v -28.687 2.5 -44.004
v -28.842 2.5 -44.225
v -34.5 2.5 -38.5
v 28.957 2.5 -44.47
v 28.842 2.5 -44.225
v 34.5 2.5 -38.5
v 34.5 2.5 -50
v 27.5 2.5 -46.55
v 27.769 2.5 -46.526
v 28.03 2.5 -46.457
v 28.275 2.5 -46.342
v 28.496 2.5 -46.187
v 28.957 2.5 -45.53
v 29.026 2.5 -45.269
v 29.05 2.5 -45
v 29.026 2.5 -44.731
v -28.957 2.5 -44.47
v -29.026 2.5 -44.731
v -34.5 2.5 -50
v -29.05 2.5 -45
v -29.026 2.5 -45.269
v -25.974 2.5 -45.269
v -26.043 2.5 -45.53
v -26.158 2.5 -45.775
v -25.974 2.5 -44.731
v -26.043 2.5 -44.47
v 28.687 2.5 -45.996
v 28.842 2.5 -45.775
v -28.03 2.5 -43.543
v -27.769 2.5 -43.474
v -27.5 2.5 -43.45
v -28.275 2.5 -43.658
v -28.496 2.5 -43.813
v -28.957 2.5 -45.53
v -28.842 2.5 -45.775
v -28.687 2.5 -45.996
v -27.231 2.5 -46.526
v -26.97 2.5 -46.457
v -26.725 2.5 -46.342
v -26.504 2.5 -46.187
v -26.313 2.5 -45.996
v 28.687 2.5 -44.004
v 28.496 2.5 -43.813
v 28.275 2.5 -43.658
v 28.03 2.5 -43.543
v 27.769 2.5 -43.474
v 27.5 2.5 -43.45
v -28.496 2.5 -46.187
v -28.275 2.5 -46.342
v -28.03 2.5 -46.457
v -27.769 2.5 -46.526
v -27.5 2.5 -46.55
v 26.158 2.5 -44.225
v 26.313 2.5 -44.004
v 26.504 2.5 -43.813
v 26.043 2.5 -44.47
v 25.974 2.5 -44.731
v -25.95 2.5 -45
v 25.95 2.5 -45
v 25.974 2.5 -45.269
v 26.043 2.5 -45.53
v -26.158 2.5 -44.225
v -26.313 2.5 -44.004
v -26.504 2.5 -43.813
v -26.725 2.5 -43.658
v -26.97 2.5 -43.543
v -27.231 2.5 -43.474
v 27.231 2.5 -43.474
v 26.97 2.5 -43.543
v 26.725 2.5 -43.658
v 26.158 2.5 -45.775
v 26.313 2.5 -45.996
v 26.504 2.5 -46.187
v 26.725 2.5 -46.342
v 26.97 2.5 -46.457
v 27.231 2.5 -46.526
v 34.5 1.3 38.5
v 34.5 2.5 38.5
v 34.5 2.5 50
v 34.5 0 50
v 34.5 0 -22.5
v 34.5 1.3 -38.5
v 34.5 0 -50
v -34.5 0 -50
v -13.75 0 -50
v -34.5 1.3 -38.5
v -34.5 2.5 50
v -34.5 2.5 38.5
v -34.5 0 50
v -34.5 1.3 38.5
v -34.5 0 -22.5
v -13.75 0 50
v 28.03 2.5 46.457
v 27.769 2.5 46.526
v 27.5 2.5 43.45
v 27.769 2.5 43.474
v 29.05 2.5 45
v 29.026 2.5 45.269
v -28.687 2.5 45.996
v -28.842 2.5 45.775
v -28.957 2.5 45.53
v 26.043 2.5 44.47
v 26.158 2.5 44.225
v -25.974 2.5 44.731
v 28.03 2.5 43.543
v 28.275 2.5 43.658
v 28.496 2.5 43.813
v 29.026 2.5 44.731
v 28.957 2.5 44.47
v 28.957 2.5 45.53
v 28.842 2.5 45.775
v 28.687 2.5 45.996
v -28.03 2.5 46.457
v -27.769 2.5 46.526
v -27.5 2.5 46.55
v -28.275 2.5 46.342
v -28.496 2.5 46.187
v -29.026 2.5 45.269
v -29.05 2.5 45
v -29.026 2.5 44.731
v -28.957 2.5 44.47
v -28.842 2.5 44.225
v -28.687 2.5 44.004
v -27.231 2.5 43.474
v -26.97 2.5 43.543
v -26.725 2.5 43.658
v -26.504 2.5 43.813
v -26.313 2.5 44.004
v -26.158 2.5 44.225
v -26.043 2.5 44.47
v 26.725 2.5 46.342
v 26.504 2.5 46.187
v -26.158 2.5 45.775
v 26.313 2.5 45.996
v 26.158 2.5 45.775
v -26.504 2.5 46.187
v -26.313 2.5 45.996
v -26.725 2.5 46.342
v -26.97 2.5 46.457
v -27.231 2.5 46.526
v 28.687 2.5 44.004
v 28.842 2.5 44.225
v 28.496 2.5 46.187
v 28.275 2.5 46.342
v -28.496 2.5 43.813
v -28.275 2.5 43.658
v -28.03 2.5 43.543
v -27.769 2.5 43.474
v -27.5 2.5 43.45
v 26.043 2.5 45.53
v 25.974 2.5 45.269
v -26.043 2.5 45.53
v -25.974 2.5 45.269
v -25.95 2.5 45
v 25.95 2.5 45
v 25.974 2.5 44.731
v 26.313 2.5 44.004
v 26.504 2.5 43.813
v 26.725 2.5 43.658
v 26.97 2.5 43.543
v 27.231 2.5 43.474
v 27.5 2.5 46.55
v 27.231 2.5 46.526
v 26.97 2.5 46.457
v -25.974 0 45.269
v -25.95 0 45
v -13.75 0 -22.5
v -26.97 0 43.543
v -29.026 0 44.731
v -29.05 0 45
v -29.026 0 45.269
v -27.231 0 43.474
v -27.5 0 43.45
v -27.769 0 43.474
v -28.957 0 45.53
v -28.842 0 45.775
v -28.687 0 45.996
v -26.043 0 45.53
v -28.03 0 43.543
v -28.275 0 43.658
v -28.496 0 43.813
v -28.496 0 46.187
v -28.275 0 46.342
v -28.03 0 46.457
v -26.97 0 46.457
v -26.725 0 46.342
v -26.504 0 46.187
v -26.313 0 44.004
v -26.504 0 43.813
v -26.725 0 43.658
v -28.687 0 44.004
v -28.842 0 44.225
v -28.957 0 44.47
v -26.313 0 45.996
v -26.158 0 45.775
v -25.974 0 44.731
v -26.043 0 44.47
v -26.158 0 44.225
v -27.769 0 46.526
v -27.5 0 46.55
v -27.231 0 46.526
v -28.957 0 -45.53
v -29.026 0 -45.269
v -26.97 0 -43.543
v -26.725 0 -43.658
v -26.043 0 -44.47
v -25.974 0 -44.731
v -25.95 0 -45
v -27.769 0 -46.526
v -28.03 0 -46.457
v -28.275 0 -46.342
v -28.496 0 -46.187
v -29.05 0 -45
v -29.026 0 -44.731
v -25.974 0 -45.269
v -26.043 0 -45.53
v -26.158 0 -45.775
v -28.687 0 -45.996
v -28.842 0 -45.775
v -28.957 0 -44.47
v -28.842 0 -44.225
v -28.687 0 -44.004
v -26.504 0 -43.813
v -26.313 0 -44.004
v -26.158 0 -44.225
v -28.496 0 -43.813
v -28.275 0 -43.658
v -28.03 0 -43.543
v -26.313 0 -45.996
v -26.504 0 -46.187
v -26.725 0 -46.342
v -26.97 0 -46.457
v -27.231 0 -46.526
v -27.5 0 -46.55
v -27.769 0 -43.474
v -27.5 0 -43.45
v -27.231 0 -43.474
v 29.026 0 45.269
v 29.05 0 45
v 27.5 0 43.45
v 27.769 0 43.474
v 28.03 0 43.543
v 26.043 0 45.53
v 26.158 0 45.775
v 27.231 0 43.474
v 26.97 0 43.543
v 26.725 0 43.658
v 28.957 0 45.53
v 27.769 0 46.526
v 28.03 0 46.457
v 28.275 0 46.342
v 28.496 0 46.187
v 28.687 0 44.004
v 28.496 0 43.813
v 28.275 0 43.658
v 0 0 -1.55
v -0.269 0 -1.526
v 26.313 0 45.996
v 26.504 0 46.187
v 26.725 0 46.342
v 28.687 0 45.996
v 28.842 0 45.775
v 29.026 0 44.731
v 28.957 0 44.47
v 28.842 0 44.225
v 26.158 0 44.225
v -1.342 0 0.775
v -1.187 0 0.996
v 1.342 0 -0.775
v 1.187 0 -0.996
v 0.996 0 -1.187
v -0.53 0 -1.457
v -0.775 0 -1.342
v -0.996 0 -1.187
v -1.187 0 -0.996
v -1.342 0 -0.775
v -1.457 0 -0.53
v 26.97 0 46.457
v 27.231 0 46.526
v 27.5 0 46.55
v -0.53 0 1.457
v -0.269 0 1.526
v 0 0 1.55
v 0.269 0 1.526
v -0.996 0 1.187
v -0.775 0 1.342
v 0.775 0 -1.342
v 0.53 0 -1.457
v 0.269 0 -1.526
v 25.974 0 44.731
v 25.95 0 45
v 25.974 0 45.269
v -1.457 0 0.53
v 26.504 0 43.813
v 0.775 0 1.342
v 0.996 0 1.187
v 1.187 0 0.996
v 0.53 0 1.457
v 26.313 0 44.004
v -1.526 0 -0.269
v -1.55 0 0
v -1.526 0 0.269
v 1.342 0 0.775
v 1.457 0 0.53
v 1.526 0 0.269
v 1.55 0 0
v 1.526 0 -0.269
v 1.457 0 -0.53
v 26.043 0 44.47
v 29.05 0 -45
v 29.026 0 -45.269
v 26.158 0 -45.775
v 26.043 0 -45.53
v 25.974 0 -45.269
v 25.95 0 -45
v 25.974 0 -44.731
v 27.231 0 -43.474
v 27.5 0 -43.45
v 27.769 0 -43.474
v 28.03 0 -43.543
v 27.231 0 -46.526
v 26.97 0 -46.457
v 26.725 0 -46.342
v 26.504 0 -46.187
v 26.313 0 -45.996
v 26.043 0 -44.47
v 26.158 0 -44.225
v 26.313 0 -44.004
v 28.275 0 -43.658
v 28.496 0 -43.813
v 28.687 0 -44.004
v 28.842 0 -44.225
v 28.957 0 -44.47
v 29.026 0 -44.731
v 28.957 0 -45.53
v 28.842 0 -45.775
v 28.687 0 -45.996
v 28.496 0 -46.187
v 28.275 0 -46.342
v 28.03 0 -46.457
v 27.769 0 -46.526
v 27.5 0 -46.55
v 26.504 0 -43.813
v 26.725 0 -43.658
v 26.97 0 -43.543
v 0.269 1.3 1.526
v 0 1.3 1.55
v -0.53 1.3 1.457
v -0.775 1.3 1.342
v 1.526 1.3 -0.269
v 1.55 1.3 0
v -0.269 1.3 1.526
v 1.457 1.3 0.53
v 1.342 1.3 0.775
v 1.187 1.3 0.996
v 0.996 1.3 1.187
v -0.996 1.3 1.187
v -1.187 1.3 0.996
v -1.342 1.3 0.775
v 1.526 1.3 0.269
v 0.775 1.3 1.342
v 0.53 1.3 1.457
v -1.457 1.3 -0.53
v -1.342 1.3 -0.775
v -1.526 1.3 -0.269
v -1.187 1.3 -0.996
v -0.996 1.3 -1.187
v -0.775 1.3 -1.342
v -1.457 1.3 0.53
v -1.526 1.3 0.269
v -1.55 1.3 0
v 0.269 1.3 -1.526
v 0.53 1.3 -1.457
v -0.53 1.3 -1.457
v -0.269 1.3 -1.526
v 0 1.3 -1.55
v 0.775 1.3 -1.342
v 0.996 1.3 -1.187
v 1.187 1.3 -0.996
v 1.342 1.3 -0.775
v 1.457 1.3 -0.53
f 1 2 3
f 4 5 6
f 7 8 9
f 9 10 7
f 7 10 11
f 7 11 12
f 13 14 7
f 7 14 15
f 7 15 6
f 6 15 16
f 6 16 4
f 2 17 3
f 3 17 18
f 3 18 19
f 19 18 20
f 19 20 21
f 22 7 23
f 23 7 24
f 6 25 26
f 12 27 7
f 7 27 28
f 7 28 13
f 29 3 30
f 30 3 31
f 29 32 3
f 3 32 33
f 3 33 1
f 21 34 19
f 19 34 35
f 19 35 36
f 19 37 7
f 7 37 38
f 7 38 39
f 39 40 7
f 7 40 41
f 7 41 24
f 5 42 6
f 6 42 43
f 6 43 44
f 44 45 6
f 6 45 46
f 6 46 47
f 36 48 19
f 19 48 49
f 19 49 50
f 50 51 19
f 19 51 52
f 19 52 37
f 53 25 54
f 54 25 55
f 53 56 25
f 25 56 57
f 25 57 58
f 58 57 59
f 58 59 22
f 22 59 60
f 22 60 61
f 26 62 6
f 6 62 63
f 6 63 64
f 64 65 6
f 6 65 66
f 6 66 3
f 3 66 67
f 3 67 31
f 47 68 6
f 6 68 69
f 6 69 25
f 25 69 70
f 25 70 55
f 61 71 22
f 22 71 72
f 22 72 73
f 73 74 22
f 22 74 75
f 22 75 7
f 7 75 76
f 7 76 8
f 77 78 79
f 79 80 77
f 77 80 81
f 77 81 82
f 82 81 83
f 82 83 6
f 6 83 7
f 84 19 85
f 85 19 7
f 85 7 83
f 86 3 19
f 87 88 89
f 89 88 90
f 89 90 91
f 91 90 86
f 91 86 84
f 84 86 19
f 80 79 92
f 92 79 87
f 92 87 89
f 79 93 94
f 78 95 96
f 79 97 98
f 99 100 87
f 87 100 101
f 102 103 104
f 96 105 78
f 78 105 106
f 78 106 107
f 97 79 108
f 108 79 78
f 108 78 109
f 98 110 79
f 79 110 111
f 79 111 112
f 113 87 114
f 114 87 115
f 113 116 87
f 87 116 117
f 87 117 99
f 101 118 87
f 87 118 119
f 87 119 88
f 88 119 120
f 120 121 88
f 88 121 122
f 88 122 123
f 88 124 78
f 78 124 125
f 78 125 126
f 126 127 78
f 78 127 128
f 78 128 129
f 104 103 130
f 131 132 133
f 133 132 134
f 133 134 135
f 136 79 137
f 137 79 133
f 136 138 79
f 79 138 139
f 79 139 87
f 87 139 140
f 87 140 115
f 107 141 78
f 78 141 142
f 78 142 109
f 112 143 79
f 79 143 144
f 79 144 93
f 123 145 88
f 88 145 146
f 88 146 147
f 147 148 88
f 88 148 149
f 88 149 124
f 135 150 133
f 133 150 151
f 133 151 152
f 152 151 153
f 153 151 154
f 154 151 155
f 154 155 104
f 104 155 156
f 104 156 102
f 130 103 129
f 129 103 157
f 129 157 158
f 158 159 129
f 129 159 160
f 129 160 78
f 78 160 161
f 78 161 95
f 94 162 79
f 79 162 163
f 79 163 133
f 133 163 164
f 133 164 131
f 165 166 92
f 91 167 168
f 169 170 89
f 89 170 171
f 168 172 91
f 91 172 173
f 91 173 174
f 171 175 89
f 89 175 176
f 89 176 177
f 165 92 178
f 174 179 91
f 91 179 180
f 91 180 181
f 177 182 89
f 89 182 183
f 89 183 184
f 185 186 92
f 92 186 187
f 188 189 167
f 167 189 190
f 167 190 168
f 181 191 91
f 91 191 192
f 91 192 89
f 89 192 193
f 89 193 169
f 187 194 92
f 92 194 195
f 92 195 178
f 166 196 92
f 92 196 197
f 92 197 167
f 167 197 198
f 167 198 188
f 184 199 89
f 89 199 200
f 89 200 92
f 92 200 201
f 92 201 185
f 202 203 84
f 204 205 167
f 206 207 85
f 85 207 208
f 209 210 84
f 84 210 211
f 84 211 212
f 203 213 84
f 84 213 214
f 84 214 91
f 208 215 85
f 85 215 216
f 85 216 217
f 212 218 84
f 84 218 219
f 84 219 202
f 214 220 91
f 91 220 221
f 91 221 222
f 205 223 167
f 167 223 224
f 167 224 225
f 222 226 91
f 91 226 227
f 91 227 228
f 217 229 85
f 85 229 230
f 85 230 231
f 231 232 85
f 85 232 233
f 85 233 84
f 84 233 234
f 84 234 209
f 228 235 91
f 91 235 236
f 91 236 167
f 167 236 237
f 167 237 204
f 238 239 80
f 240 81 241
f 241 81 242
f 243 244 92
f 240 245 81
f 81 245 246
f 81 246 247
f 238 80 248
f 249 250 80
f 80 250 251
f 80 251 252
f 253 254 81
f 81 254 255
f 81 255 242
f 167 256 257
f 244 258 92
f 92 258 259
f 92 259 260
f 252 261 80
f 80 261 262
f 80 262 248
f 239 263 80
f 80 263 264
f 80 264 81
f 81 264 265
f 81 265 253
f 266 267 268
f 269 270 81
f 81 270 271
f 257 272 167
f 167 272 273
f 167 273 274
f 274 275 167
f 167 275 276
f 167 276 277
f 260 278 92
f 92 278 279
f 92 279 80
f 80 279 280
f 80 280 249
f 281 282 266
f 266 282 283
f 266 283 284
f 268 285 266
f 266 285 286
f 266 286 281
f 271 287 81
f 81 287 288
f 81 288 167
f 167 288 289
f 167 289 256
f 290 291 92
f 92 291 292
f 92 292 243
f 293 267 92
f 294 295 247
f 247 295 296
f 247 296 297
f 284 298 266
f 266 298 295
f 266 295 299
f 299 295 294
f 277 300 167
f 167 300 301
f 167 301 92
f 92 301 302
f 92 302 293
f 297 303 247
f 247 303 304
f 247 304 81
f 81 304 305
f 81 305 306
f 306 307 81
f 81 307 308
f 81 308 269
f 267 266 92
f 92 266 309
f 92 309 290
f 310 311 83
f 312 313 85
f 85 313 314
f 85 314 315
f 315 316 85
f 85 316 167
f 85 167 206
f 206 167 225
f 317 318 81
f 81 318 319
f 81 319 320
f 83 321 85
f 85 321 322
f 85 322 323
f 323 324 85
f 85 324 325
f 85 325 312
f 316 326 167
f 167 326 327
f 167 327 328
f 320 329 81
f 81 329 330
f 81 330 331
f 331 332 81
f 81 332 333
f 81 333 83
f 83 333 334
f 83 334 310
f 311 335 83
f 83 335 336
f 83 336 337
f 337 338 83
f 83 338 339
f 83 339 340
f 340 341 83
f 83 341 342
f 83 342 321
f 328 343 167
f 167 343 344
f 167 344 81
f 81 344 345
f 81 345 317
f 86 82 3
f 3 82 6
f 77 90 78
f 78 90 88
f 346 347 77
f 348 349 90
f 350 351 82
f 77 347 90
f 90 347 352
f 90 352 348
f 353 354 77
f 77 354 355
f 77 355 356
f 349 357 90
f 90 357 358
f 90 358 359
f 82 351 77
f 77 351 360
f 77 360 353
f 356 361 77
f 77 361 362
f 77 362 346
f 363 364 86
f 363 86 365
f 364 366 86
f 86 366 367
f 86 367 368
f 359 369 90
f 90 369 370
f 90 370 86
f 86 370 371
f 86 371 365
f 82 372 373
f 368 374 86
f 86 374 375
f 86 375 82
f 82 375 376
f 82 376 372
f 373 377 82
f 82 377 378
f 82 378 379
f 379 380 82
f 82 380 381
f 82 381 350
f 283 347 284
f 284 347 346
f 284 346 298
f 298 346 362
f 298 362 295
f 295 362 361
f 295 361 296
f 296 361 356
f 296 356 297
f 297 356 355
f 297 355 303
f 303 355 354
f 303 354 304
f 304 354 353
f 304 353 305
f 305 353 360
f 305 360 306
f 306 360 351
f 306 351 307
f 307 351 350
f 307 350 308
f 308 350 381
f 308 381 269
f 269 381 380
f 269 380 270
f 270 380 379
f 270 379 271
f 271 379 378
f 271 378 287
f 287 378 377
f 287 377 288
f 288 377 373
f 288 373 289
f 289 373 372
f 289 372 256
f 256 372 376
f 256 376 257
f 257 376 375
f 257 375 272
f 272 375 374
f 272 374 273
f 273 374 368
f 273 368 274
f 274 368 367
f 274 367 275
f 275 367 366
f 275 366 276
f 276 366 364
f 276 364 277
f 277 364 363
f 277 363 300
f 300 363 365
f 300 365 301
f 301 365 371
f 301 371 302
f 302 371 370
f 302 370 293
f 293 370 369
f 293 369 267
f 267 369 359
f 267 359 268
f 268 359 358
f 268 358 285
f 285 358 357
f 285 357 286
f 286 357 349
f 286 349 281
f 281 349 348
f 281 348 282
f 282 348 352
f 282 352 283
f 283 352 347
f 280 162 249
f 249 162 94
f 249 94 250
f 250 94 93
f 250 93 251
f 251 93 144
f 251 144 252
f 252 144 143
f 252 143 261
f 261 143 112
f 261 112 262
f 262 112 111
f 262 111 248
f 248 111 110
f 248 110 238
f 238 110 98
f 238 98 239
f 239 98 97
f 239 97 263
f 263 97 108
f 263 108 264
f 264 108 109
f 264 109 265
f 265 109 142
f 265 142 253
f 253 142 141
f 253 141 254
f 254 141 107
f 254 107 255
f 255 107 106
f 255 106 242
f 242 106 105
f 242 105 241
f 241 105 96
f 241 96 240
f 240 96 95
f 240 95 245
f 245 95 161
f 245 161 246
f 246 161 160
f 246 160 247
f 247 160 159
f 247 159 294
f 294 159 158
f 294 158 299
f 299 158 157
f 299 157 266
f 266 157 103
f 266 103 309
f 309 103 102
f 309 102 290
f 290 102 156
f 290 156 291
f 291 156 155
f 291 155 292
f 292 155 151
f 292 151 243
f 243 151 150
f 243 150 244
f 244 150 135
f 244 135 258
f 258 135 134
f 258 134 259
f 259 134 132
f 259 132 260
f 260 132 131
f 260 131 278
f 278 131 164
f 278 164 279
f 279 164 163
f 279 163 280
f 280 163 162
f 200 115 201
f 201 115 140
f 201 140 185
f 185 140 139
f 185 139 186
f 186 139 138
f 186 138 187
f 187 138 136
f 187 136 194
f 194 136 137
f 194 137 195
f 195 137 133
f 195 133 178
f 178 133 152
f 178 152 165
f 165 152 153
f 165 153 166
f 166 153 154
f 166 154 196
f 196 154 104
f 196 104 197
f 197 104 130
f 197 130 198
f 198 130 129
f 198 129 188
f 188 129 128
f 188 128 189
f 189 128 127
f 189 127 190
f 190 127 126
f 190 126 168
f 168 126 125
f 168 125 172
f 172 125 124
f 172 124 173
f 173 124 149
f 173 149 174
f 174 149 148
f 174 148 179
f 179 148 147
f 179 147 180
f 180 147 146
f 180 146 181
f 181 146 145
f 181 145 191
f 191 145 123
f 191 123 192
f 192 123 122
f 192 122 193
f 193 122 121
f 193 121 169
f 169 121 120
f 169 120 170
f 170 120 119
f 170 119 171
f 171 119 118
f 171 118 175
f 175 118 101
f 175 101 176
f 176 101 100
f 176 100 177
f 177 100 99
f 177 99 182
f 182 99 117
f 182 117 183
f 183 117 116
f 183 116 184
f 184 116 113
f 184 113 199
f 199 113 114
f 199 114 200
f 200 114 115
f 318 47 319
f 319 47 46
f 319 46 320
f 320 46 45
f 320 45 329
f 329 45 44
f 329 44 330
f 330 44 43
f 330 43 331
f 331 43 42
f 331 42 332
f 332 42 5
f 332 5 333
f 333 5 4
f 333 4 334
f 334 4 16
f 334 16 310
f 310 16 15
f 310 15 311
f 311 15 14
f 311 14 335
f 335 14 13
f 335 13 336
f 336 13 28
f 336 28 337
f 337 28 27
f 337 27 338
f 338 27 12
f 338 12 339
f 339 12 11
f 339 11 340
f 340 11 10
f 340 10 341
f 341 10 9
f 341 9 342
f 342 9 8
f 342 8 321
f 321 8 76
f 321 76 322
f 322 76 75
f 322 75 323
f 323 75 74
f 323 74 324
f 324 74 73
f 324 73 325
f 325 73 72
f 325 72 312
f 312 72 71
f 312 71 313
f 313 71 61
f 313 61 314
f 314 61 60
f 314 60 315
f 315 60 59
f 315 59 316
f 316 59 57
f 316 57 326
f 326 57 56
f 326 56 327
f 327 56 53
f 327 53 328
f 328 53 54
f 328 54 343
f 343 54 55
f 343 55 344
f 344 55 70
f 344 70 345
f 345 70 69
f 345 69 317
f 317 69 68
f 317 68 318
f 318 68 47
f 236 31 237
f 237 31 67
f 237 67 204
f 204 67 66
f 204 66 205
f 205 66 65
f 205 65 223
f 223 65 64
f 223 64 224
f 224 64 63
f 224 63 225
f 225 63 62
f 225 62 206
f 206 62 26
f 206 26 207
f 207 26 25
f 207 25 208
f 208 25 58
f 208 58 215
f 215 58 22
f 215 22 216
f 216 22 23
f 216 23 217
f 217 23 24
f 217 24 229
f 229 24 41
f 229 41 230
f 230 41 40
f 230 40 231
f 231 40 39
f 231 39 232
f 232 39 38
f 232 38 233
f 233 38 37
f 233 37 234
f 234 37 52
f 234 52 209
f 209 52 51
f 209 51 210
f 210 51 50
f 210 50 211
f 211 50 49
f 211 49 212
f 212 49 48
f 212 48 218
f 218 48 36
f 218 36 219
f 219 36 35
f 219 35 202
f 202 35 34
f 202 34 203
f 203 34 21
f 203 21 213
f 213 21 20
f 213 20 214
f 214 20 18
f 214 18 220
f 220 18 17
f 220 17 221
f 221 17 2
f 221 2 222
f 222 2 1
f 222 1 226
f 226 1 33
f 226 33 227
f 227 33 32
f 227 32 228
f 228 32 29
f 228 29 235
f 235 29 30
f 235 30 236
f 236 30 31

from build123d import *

# Parameters (mm, degrees)
SKETCH1_W              = 69
SKETCH1_H              = 100
BOSS_EXTRUDE1_DEPTH    = 2.5
SKETCH2_W              = 69
SKETCH2_H              = 77
CUT_EXTRUDE1_DEPTH     = 1.2
M2_5_CLEARANCE_HOLE1_D = 3.1


with BuildPart() as part:
    # Sketch1 → Boss-Extrude1 (new body)
    with BuildSketch(Plane(origin=(0, 0, 0), x_dir=(1, 0, 0), z_dir=(0, 1, 0))):
        Rectangle(SKETCH1_W, SKETCH1_H)
    extrude(amount=BOSS_EXTRUDE1_DEPTH)

    # Sketch2 → Cut-Extrude1 (cut)
    with BuildSketch(Plane(origin=(0, 2.5, 0), x_dir=(1, 0, 0), z_dir=(0, 1, 0))):
        Rectangle(SKETCH2_W, SKETCH2_H)
    extrude(amount=-CUT_EXTRUDE1_DEPTH, mode=Mode.SUBTRACT)

    # M2.5 Clearance Hole1 (through all)
    with Locations(Plane(origin=(0, 2.5, 0), x_dir=(1, 0, 0), z_dir=(0, 1, 0))):
        with Locations((-27.5, 45), (27.5, 45), (-27.5, -45), (27.5, -45), (0, 0)):
            Hole(M2_5_CLEARANCE_HOLE1_D / 2)


solid = part.part
